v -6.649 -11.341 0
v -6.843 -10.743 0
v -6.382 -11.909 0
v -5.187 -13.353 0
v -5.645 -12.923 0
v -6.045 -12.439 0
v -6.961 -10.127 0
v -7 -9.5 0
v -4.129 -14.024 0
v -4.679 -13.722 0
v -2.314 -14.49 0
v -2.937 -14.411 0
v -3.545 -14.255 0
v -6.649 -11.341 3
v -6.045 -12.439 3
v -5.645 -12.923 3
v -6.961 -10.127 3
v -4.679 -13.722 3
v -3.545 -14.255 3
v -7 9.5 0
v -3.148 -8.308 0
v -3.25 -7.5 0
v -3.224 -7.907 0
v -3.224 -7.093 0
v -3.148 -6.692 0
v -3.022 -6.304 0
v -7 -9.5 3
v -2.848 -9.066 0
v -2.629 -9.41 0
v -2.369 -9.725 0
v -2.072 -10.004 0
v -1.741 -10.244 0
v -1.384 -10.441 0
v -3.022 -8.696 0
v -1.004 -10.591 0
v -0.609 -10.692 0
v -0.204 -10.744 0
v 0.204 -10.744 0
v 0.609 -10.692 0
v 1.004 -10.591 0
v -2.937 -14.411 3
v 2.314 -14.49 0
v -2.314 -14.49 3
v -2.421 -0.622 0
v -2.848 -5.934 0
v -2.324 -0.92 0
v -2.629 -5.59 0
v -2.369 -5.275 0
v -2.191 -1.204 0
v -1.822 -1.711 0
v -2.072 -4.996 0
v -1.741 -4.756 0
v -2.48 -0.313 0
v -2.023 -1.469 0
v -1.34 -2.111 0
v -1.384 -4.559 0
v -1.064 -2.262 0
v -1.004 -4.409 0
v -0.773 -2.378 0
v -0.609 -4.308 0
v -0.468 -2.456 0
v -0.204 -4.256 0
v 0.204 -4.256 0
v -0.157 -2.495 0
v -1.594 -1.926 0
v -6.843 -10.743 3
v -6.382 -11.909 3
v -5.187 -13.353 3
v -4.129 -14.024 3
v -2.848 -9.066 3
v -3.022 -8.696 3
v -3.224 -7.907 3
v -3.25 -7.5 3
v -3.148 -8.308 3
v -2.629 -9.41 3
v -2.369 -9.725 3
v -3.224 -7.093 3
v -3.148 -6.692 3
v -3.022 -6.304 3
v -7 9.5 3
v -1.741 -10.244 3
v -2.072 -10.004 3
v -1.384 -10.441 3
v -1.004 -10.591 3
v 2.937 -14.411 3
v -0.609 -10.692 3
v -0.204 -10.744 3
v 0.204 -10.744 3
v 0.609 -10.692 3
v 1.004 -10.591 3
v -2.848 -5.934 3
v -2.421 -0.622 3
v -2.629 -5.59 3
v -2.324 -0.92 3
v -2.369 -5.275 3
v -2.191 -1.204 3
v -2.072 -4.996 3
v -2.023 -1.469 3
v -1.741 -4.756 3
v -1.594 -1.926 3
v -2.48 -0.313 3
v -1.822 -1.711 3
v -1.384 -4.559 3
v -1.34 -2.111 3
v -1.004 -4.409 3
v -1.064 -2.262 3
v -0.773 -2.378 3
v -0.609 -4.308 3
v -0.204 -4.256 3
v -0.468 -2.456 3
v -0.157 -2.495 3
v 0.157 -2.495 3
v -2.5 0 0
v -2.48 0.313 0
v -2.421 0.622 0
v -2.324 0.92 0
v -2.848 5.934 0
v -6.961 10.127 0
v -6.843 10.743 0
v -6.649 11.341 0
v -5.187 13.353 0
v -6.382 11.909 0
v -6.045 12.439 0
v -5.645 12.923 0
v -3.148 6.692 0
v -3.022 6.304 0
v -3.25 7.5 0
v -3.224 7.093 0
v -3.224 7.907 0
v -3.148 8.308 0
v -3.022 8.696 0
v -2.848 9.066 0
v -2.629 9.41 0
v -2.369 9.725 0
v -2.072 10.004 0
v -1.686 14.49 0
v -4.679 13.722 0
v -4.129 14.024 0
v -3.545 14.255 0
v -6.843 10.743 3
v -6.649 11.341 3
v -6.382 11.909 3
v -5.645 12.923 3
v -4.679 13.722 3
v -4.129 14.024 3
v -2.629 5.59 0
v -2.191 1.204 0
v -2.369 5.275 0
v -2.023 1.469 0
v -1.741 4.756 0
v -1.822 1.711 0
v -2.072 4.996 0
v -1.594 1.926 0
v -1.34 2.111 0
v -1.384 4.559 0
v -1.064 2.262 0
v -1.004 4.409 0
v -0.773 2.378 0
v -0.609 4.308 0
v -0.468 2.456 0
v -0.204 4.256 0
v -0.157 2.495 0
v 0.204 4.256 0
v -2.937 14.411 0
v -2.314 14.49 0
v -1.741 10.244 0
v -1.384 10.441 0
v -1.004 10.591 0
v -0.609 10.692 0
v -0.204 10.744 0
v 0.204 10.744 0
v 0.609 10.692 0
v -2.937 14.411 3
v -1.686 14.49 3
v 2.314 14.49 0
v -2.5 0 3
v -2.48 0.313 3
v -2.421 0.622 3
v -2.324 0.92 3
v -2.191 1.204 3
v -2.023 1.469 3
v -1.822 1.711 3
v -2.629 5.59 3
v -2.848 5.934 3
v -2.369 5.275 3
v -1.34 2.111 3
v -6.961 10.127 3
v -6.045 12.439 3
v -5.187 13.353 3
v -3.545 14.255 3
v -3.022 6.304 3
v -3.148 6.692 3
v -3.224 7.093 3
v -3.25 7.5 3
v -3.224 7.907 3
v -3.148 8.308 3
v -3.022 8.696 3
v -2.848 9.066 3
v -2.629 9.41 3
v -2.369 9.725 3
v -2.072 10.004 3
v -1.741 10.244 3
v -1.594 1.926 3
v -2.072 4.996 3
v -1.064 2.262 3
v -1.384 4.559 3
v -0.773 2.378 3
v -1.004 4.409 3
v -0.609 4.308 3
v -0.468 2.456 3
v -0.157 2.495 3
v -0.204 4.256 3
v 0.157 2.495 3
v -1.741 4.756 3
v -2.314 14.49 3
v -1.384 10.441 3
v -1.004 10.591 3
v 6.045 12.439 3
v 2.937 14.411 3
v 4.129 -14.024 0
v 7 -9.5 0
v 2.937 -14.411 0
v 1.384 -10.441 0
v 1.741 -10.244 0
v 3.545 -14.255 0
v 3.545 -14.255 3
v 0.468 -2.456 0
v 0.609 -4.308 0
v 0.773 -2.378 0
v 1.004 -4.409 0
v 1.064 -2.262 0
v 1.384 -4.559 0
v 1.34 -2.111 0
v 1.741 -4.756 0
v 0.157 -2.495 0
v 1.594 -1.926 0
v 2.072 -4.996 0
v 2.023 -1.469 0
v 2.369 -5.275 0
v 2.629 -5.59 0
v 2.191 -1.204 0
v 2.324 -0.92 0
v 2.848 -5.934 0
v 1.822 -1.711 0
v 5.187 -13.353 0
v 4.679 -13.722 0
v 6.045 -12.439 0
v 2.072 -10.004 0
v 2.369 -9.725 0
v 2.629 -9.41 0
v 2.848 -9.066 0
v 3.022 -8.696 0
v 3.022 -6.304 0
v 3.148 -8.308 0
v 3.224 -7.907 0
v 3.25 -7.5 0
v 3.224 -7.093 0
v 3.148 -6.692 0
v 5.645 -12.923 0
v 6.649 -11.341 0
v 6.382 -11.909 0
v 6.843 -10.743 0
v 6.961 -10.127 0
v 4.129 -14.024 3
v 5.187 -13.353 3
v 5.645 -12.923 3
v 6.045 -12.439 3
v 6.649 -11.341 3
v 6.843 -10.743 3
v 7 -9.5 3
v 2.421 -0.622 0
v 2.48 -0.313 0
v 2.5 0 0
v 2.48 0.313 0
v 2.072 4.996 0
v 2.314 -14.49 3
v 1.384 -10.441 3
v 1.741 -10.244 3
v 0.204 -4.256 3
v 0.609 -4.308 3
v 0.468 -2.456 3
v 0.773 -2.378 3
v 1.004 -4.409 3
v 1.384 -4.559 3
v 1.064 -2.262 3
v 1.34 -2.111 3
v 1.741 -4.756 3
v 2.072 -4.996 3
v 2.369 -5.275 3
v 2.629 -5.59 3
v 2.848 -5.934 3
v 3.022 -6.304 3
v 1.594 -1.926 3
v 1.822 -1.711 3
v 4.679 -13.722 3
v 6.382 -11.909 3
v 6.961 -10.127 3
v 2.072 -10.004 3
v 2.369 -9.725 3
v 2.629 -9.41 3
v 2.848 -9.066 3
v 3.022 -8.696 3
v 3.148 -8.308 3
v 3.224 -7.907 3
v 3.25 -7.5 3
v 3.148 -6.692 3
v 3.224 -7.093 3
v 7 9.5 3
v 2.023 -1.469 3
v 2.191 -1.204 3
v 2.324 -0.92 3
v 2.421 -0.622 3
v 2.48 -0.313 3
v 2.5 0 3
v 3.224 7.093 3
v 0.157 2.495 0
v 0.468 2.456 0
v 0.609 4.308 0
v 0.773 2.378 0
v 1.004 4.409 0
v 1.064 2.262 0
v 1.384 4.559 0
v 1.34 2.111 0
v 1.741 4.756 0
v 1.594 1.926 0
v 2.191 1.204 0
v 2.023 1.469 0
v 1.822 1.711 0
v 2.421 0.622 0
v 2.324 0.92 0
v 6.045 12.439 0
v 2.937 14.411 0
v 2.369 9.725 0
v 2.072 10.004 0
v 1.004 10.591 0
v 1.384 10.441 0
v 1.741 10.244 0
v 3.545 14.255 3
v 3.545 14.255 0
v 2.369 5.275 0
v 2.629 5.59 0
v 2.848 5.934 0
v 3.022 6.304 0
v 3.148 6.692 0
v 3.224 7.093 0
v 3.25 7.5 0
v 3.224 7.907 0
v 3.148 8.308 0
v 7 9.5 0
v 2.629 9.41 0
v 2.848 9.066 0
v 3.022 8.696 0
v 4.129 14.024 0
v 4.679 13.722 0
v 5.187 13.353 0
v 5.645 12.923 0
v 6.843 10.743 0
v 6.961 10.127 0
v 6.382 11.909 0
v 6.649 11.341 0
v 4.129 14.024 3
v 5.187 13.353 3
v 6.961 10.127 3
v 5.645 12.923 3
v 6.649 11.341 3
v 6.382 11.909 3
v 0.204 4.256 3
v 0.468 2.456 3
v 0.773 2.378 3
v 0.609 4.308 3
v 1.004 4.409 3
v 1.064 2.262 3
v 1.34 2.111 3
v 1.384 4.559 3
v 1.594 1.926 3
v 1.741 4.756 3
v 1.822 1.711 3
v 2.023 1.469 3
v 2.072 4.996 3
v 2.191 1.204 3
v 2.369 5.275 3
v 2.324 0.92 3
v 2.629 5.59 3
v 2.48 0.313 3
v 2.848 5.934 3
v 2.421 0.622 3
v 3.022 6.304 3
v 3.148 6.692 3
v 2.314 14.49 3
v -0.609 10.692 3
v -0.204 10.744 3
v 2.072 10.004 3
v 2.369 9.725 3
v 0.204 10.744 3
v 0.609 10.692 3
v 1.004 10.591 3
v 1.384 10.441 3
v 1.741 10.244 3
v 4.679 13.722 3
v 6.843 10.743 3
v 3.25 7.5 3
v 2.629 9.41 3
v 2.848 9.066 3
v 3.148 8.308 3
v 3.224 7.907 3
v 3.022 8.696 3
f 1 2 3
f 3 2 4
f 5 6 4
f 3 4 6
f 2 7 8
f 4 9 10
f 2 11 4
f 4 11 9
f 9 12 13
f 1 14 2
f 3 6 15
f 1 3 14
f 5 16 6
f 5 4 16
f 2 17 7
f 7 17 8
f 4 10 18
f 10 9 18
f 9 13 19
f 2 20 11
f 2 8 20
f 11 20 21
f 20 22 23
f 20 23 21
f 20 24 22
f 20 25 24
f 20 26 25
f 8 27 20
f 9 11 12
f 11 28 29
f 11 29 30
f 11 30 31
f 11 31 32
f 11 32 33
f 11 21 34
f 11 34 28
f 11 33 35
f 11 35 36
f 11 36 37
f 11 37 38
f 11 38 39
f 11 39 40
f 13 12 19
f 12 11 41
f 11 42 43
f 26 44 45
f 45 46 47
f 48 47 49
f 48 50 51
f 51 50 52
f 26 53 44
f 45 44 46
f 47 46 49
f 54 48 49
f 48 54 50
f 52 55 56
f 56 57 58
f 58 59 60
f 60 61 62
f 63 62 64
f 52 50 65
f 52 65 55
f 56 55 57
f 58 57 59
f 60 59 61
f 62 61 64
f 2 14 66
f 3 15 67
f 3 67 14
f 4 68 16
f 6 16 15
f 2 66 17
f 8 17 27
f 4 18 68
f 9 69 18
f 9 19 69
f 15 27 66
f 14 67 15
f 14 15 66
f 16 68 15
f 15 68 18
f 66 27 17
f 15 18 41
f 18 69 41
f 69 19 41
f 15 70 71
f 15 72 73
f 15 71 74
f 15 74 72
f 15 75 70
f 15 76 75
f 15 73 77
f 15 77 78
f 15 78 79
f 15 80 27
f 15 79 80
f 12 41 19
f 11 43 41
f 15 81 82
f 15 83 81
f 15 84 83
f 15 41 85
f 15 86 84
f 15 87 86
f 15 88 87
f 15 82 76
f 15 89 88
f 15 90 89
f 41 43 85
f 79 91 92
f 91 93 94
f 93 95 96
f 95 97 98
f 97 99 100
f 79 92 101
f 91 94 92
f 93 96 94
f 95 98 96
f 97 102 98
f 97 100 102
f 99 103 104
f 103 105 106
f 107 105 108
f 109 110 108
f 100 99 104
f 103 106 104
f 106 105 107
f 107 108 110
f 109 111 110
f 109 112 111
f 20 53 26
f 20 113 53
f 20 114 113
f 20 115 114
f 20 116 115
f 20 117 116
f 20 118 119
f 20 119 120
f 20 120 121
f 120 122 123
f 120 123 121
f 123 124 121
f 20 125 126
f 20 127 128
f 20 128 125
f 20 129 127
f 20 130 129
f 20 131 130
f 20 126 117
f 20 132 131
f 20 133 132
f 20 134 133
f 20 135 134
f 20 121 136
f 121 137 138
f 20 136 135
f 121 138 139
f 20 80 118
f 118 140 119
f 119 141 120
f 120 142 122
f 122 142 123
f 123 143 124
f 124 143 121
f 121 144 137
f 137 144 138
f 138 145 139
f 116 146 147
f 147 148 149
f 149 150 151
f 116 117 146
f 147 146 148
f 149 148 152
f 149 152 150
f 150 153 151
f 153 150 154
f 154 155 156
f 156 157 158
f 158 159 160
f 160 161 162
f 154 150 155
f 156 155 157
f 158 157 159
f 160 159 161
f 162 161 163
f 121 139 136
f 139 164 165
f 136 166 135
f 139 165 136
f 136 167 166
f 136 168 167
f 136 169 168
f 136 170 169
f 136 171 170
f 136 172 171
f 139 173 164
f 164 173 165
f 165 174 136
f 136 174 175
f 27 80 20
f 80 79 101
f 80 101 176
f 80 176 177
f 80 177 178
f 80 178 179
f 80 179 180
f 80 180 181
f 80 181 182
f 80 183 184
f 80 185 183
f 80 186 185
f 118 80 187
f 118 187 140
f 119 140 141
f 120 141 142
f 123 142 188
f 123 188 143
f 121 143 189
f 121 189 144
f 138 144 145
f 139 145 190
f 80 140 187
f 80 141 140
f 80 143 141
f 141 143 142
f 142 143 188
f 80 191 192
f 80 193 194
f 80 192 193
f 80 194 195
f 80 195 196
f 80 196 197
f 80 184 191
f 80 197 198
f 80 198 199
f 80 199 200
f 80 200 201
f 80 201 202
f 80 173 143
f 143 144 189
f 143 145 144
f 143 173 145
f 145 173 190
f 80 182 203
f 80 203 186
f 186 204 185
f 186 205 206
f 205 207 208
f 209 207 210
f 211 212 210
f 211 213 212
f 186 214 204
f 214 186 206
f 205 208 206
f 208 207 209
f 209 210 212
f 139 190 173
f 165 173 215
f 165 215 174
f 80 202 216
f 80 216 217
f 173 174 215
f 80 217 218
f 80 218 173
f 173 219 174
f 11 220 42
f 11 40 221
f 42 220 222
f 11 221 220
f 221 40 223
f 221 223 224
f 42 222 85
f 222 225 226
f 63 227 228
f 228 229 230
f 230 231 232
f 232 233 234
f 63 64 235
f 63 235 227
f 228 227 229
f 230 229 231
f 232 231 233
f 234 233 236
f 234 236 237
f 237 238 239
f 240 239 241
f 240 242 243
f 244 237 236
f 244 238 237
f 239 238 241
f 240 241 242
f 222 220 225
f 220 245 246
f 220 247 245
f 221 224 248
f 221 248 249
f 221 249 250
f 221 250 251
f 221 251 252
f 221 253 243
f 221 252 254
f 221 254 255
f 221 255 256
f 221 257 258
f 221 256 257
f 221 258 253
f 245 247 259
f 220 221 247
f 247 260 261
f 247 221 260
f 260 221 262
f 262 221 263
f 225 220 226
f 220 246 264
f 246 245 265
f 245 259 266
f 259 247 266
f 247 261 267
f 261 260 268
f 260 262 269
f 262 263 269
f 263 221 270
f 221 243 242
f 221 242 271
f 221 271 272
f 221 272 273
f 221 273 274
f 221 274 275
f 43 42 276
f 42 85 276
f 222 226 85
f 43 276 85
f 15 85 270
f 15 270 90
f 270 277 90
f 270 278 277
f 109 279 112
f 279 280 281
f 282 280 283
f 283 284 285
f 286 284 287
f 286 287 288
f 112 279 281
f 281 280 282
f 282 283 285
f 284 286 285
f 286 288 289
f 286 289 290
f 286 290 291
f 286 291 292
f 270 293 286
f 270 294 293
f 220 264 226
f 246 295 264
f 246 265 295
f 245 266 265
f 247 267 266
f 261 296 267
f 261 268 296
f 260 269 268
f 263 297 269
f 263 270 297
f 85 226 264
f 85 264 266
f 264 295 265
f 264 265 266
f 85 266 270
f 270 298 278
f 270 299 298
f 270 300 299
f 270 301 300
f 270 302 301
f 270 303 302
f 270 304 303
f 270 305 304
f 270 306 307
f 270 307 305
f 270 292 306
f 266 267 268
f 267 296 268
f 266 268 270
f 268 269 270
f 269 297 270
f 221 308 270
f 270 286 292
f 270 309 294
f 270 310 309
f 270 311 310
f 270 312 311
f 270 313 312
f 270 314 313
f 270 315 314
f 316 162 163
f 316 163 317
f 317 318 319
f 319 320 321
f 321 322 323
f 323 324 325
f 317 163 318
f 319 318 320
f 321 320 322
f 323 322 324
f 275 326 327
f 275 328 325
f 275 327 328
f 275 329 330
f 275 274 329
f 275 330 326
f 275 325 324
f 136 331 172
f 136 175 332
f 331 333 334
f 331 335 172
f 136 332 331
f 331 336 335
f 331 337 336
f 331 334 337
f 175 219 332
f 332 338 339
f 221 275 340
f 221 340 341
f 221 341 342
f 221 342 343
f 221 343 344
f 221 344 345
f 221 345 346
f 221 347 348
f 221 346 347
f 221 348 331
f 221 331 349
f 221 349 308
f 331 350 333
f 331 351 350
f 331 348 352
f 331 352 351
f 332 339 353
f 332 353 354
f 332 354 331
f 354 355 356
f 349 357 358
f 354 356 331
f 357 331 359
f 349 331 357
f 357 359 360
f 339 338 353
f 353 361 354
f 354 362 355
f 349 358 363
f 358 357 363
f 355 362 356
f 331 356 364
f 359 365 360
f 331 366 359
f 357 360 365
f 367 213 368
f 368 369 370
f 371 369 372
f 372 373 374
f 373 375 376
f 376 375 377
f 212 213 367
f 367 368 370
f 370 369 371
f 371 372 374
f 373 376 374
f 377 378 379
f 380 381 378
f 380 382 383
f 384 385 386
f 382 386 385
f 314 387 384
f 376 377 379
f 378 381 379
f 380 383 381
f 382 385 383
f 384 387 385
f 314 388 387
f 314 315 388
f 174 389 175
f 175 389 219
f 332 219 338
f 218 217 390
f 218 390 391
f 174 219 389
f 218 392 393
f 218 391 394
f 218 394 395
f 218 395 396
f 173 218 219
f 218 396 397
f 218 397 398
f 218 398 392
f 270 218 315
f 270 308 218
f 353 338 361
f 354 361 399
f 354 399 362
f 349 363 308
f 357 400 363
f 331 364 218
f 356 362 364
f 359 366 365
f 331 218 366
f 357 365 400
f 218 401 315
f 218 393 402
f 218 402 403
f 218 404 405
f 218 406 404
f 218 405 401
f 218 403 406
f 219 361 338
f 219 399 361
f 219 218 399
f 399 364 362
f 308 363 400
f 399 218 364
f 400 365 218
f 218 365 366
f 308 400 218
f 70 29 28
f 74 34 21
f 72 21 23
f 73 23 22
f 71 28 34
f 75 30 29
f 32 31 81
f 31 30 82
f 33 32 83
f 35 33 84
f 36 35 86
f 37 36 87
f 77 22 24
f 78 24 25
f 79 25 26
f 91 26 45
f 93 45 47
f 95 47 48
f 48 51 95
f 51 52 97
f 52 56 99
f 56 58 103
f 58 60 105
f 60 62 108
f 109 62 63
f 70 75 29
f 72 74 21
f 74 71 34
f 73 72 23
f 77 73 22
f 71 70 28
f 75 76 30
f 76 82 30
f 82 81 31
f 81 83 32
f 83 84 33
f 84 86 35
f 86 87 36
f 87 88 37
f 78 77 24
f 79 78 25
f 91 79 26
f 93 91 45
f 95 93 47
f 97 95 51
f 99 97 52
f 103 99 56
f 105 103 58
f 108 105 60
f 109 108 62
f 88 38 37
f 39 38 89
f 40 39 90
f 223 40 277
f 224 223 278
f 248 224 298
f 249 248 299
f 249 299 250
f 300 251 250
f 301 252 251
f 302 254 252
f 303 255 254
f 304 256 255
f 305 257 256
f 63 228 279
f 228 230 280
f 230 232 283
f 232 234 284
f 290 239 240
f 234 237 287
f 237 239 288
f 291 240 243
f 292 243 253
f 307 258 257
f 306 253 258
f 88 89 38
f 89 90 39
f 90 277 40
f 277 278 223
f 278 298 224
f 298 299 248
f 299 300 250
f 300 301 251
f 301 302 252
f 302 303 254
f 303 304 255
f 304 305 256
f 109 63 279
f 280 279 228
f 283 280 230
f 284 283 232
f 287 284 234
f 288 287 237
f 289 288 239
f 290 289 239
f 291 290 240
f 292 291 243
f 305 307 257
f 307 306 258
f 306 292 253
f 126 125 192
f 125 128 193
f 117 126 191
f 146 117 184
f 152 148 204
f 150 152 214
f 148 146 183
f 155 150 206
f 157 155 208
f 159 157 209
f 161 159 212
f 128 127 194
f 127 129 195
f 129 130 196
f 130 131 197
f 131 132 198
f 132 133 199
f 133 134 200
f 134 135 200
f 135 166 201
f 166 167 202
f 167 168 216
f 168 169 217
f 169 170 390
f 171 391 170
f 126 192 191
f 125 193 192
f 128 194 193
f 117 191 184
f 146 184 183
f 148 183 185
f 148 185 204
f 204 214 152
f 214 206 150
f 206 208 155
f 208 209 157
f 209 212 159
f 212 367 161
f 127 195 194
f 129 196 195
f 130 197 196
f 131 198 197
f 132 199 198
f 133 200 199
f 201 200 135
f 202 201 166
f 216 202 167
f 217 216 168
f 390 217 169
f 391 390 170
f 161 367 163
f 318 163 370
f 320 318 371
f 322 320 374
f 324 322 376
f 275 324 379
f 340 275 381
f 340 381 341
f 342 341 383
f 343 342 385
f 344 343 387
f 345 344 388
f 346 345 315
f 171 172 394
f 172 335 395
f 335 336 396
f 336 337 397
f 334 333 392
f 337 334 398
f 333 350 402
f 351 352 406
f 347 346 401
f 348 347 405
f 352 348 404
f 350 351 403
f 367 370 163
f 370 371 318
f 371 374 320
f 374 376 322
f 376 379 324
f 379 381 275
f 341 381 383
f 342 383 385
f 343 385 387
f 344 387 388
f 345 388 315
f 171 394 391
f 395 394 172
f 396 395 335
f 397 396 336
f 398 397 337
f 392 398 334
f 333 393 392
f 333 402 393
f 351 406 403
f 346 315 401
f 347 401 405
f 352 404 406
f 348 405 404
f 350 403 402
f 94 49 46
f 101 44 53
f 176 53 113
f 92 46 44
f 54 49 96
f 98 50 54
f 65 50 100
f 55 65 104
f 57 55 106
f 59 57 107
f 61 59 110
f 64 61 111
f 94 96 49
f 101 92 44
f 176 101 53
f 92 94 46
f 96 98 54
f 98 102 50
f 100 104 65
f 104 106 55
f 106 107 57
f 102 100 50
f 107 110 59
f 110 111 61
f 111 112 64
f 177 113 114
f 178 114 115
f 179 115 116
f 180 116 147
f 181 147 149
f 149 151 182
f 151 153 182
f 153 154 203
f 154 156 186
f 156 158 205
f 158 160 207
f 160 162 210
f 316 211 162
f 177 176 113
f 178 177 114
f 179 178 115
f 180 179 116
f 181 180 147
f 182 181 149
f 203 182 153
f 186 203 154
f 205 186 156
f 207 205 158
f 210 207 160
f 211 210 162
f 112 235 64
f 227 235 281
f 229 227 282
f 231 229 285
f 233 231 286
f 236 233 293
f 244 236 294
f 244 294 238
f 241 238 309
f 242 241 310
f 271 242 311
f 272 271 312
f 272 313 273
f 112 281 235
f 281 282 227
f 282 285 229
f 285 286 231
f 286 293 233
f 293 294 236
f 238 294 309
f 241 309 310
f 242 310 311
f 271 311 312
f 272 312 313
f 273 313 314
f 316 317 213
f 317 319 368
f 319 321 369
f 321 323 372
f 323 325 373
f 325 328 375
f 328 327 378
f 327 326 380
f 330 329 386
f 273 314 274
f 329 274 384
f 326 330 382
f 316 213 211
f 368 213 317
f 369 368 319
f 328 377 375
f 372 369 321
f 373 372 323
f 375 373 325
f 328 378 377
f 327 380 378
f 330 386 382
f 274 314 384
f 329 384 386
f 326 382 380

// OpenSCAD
$fn = 50;

difference() {
	union() {
		hull() {
			translate(v = [-2.0, 9.5, 0]) {
				cylinder(h = 3, r = 5);
			}
			translate(v = [2.0, 9.5, 0]) {
				cylinder(h = 3, r = 5);
			}
			translate(v = [-2.0, -9.5, 0]) {
				cylinder(h = 3, r = 5);
			}
			translate(v = [2.0, -9.5, 0]) {
				cylinder(h = 3, r = 5);
			}
		}
	}
	union() {
		translate(v = [0.0, -7.5, 0]) {
			cylinder(h = 3, r = 3.25);
		}
		translate(v = [0.0, 7.5, 0]) {
			cylinder(h = 3, r = 3.25);
		}
		cylinder(h = 3, r = 2.5);
	}
}
